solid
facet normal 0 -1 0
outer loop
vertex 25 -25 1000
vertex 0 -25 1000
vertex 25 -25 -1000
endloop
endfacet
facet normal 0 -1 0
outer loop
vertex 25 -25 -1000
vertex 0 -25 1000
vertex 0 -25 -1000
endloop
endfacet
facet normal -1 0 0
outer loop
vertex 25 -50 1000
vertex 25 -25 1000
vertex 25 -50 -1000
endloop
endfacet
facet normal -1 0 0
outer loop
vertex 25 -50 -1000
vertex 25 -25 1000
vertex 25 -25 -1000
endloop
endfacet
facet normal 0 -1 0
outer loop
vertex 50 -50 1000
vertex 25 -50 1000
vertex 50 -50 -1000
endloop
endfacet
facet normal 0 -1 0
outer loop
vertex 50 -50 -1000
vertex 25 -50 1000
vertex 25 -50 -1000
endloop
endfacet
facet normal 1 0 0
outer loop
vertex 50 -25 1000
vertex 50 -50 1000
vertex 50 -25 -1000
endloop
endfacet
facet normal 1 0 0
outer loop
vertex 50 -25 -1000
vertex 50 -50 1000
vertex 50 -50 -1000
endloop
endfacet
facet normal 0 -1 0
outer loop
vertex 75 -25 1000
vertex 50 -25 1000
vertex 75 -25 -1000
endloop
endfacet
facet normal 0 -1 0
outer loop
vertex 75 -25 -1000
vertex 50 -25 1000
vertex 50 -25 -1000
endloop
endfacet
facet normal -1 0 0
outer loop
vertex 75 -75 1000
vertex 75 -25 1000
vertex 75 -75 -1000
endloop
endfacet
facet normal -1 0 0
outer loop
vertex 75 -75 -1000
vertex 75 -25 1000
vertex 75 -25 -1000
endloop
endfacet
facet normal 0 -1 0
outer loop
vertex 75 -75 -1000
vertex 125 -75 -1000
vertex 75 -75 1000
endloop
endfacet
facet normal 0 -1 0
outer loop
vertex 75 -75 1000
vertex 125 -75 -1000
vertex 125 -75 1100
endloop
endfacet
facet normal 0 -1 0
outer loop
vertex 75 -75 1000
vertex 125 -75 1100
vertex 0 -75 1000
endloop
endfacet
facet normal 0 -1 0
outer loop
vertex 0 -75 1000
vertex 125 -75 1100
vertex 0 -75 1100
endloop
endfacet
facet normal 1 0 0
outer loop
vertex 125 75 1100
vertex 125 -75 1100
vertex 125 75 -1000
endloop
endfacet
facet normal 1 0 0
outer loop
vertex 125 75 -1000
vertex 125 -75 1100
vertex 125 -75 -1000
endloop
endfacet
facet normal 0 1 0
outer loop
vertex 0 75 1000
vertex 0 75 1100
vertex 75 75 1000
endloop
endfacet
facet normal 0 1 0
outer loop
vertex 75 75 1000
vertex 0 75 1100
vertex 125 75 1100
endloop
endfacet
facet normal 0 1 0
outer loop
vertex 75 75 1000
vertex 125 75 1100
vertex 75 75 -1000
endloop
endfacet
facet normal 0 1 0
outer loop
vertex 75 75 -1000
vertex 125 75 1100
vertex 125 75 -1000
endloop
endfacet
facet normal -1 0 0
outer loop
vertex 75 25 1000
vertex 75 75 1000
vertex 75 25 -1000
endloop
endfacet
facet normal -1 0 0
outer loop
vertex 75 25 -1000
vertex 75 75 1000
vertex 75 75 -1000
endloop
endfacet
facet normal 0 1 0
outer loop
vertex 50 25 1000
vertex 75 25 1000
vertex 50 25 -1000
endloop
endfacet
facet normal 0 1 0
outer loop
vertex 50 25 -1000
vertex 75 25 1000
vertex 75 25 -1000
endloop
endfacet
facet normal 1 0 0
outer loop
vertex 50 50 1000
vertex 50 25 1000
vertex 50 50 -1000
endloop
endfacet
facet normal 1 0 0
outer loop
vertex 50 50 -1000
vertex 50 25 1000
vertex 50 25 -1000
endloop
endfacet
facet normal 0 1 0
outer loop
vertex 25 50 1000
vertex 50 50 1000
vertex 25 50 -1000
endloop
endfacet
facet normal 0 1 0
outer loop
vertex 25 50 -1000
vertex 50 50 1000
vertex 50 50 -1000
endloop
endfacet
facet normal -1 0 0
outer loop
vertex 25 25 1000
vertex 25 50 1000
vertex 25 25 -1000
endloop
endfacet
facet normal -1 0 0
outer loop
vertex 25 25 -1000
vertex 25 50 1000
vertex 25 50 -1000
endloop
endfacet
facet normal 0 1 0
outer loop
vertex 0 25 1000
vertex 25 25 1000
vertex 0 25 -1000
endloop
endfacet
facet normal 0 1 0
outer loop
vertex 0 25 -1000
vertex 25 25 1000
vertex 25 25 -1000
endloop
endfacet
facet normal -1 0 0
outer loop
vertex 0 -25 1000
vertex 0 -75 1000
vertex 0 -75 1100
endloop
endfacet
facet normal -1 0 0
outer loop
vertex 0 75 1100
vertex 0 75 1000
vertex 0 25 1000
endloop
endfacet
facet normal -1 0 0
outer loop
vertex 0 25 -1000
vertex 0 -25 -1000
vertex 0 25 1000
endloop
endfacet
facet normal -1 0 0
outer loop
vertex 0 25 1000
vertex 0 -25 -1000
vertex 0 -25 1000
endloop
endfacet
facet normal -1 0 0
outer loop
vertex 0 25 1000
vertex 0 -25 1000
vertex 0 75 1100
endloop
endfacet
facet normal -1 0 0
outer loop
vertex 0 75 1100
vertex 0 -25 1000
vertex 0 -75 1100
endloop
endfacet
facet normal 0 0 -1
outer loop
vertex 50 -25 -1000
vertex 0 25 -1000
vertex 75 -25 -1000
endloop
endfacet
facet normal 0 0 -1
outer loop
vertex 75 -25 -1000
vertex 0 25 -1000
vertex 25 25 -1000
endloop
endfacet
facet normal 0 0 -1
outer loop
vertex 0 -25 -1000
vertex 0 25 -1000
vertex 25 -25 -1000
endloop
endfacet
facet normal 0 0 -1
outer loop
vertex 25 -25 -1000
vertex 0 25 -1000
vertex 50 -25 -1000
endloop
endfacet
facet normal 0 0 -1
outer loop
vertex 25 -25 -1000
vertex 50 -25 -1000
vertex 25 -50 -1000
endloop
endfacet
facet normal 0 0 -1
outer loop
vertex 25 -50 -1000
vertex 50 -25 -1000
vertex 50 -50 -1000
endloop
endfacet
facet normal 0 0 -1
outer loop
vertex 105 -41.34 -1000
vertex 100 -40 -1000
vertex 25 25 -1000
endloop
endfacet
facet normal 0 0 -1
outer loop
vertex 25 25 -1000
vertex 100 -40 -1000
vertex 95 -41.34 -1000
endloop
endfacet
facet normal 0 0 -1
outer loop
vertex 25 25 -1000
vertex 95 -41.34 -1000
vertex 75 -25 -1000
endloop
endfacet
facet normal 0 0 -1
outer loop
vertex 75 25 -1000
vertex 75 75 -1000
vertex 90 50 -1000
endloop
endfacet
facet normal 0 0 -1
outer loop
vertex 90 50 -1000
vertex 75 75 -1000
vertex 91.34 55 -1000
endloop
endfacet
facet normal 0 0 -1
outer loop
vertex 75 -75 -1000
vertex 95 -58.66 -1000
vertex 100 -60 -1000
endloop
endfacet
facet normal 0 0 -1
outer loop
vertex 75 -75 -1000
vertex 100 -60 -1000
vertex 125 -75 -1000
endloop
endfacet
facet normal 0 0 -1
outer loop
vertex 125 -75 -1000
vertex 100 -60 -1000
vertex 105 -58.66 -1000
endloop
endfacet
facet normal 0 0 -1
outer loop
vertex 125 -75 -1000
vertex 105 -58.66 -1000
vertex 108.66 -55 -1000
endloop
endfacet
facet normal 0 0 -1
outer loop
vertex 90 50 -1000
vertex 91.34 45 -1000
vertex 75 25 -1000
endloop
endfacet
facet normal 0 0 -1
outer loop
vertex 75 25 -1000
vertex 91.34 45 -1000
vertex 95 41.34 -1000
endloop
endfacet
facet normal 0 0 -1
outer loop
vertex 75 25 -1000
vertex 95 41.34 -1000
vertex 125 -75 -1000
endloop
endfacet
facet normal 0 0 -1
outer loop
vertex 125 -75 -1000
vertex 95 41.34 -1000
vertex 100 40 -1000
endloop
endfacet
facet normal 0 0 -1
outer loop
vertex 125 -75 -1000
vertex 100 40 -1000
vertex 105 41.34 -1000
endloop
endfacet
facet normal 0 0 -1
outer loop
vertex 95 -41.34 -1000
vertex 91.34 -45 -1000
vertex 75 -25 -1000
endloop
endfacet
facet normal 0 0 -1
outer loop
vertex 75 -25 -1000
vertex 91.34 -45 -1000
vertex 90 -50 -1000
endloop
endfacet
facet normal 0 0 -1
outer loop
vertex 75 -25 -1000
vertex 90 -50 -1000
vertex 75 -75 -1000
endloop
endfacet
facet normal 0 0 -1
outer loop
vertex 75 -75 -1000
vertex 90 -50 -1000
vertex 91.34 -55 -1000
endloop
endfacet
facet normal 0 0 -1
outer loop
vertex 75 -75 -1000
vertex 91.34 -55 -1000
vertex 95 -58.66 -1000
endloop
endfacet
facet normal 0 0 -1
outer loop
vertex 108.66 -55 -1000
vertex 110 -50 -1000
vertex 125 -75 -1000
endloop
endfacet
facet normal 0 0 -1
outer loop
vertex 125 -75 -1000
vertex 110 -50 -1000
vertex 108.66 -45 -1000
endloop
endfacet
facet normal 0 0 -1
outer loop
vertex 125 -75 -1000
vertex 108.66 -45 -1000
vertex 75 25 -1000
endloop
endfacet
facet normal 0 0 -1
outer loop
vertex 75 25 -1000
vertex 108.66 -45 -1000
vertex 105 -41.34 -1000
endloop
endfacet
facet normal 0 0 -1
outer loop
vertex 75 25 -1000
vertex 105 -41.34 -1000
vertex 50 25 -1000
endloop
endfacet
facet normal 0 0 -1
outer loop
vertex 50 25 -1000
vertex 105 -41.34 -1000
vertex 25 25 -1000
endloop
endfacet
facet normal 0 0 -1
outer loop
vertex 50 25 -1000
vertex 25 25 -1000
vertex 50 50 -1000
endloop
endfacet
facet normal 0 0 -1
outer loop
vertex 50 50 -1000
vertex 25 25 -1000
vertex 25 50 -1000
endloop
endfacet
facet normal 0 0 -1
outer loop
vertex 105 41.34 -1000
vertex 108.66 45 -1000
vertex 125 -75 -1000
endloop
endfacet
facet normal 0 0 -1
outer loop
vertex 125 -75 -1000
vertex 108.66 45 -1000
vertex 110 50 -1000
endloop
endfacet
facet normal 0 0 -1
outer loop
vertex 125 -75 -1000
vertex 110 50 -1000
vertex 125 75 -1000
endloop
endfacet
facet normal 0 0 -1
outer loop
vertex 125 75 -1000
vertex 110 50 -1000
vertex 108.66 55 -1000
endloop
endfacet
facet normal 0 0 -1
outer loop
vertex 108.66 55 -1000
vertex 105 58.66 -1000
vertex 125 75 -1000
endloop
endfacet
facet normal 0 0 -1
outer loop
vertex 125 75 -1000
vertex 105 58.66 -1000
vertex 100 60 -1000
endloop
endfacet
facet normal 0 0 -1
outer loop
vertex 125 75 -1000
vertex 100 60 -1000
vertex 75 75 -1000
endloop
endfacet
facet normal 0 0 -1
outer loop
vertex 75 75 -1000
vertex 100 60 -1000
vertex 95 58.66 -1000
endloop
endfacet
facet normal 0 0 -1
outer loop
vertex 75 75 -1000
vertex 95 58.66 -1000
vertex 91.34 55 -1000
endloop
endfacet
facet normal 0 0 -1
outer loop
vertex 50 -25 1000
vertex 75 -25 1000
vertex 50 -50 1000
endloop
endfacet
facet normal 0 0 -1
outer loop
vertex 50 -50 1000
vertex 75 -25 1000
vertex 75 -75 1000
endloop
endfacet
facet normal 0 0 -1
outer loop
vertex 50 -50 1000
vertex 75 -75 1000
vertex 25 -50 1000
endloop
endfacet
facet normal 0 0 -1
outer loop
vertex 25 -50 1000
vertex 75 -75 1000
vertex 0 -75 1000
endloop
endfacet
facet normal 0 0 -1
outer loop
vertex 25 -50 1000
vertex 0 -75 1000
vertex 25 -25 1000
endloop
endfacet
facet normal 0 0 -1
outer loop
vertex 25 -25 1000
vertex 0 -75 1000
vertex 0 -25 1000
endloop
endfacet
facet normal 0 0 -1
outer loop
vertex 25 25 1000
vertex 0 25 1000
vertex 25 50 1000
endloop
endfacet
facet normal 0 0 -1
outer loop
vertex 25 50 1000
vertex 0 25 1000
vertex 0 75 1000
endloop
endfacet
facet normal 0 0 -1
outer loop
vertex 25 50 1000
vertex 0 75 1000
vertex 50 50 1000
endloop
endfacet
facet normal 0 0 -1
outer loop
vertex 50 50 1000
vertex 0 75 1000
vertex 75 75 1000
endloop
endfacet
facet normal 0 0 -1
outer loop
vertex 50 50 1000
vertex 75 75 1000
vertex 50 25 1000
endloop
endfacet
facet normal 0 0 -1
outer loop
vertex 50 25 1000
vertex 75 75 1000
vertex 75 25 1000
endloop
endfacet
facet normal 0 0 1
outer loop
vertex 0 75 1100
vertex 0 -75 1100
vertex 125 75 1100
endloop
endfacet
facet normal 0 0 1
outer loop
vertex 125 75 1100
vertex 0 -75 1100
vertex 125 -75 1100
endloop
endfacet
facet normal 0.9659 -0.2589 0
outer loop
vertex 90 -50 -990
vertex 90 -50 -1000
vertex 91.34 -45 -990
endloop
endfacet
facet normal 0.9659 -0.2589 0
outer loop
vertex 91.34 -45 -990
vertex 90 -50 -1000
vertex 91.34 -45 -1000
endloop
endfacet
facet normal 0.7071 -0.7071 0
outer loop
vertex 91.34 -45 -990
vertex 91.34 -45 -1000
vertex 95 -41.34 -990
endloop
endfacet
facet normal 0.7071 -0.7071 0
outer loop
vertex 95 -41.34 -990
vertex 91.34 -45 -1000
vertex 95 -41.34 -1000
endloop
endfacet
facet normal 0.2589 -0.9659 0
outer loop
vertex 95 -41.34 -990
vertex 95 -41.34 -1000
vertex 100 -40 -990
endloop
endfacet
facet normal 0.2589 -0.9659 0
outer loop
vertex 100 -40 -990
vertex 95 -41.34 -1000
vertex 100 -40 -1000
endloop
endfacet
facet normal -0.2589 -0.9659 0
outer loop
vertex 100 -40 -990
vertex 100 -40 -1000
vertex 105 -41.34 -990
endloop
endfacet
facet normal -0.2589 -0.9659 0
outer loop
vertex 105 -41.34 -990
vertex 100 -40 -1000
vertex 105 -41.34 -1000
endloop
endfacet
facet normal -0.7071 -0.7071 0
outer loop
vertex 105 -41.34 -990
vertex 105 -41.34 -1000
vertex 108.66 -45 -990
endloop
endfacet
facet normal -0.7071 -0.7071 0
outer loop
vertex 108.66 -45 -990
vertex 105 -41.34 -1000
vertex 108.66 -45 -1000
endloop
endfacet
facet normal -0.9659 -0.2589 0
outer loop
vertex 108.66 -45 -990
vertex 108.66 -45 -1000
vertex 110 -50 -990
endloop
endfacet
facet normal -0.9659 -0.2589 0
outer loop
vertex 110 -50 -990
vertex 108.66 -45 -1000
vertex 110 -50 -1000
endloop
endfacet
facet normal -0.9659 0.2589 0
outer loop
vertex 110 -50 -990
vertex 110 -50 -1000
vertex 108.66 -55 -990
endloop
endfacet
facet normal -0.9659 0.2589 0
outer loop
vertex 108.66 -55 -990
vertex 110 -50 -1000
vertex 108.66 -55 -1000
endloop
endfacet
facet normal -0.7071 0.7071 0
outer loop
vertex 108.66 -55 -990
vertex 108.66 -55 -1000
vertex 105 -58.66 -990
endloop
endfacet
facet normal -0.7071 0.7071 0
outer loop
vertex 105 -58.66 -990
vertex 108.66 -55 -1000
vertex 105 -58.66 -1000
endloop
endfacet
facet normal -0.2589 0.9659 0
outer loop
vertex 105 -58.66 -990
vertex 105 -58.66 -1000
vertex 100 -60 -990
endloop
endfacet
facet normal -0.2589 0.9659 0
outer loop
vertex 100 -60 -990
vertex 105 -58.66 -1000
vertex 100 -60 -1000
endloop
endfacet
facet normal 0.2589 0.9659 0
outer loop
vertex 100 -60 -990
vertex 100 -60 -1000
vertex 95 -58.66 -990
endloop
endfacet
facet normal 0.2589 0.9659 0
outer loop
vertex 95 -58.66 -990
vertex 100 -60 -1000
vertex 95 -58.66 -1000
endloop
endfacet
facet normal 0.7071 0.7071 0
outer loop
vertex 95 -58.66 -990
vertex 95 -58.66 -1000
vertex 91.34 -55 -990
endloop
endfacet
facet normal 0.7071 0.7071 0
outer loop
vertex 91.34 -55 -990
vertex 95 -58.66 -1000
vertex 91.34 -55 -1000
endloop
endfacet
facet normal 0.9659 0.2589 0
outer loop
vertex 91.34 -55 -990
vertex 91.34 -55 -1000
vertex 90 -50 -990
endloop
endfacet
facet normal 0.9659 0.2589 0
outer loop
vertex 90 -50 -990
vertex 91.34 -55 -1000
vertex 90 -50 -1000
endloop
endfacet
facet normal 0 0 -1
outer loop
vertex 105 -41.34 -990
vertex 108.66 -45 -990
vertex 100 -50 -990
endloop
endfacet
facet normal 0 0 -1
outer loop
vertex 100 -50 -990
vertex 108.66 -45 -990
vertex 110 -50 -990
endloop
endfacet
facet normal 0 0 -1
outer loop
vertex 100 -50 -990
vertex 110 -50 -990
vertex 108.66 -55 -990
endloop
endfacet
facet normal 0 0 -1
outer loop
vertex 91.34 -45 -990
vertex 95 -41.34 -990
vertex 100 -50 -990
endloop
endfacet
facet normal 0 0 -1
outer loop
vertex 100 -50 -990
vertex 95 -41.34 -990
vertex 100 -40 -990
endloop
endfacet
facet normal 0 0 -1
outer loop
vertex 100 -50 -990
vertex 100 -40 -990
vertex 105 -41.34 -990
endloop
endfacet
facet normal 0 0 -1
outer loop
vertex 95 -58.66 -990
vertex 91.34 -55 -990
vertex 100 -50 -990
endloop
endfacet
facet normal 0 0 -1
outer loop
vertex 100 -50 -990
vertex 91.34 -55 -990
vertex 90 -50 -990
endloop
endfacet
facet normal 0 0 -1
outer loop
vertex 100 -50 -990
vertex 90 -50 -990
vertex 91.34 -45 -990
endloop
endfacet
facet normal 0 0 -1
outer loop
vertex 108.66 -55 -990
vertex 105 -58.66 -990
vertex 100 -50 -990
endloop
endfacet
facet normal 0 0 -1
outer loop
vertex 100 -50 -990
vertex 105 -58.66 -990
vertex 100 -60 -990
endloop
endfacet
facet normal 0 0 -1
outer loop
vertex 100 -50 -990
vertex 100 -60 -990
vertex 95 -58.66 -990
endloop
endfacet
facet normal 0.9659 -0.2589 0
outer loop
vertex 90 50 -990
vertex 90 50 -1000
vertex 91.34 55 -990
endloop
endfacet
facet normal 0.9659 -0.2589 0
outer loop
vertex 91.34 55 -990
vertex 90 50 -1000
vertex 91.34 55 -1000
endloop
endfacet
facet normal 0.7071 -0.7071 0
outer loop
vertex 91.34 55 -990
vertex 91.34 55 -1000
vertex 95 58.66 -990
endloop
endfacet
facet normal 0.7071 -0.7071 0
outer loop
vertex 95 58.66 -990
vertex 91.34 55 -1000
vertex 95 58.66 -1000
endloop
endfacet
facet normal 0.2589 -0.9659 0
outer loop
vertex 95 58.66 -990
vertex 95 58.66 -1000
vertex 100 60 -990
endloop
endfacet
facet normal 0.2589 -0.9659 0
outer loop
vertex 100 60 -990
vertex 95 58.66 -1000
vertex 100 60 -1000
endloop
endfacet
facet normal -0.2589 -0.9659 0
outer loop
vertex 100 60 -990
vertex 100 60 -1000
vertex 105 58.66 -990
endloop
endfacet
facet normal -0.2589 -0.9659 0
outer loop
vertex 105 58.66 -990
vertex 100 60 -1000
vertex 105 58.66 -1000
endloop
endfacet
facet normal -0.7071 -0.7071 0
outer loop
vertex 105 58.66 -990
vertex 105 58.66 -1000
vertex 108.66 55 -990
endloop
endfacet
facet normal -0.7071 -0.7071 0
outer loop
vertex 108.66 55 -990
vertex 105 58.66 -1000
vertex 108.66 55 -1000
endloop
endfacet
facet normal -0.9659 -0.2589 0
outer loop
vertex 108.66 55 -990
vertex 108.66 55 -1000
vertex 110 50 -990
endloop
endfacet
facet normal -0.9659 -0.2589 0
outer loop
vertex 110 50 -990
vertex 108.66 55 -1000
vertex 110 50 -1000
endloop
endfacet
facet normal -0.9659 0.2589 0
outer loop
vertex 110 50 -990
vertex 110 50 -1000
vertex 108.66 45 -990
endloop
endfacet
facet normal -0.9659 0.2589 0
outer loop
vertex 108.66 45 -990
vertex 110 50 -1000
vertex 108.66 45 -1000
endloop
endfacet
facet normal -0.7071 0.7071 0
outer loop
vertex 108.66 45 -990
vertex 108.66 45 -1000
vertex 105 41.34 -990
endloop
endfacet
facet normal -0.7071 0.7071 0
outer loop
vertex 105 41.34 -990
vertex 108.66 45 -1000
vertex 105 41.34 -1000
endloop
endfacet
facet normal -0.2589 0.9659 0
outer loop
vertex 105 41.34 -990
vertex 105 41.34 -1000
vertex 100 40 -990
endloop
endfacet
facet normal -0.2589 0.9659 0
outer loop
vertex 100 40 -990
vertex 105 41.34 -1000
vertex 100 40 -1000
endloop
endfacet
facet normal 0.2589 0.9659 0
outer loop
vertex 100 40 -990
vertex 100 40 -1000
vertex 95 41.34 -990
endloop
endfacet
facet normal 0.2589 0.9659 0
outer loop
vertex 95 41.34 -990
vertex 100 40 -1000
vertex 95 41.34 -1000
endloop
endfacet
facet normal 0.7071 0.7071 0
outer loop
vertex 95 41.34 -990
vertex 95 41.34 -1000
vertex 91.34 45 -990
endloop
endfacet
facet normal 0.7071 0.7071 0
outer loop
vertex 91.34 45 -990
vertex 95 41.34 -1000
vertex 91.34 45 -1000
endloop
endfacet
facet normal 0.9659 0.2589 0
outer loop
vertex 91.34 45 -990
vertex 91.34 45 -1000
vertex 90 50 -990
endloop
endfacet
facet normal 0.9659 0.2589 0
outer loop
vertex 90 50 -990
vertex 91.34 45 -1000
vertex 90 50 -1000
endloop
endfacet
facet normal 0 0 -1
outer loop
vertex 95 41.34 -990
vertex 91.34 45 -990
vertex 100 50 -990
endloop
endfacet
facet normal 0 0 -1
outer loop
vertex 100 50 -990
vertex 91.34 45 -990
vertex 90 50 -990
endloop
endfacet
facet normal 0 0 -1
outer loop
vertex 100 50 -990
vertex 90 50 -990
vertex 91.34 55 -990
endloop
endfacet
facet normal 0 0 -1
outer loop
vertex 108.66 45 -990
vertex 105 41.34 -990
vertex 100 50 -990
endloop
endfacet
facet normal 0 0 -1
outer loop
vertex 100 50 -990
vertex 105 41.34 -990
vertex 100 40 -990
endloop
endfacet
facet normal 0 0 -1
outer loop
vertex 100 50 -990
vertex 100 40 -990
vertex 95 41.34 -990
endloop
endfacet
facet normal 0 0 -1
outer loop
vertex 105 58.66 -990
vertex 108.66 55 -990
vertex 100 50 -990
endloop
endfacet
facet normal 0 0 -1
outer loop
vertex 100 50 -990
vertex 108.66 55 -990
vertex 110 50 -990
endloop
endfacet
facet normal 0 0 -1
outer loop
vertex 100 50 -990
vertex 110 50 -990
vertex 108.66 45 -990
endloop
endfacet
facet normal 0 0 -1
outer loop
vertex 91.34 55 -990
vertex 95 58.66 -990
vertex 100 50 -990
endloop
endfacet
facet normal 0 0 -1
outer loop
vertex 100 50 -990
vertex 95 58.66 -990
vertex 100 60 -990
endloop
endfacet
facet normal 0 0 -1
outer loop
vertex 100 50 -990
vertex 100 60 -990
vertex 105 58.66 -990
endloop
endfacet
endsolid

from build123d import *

# Parameters (mm, degrees)
BOSS_EXTRUDE1_DEPTH = 1000
SKETCH2_W           = 125
SKETCH2_H           = 150
BOSS_EXTRUDE2_DEPTH = 100
SKETCH3_R           = 10
CUT_EXTRUDE1_DEPTH  = 10


with BuildPart() as part:
    # Sketch1 → Boss-Extrude1 (new, symmetric)
    with BuildSketch(Plane.XY):
        Polygon((0, 0), (0, 25), (25, 25), (25, 50), (50, 50), (50, 25), (75, 25), (75, 75), (125, 75), (125, -75), (75, -75), (75, -25), (50, -25), (50, -50), (25, -50), (25, -25), (0, -25), align=None)
    extrude(amount=BOSS_EXTRUDE1_DEPTH, both=True)

    # Sketch2 → Boss-Extrude2 (add)
    with BuildSketch(Plane.XY.offset(1000)):
        with Locations((62.5, 0)):
            Rectangle(SKETCH2_W, SKETCH2_H)
    extrude(amount=BOSS_EXTRUDE2_DEPTH)

    # Sketch3 → Cut-Extrude1 (cut)
    with BuildSketch(Plane(origin=(0, 0, -1000), x_dir=(-1, 0, 0), z_dir=(0, 0, -1))):
        with Locations((-100, 50)):
            Circle(SKETCH3_R)
        with Locations((-100, -50)):
            Circle(SKETCH3_R)
    extrude(amount=-CUT_EXTRUDE1_DEPTH, mode=Mode.SUBTRACT)


solid = part.part
